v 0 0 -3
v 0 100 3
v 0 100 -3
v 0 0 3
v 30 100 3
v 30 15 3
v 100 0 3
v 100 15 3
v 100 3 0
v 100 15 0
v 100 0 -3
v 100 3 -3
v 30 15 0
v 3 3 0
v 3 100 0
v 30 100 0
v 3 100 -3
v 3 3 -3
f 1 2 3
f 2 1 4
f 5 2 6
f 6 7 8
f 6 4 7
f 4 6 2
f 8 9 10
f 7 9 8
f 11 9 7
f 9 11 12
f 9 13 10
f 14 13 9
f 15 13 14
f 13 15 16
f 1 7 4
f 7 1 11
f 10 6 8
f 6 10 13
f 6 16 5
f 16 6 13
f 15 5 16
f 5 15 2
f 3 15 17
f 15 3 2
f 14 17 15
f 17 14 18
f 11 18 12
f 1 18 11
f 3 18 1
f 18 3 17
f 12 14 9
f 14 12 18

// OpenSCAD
//Platinenwinkel

Vertikal = true;

Horizontal =false;

if (Vertikal) {
    cube([100,15,3]);
    cube([30,100,3]);

    translate([0,0,-3])
    cube([3,100,6]);

    translate([0,0,-3])
    cube([100,3,6]);
}

if (Horizontal) {
    cube([100,40,3]);
    cube([30,100,3]);

    translate([0,0,-3])
    cube([3,100,6]);

    translate([0,0,-3])
    cube([100,3,6]);
}
